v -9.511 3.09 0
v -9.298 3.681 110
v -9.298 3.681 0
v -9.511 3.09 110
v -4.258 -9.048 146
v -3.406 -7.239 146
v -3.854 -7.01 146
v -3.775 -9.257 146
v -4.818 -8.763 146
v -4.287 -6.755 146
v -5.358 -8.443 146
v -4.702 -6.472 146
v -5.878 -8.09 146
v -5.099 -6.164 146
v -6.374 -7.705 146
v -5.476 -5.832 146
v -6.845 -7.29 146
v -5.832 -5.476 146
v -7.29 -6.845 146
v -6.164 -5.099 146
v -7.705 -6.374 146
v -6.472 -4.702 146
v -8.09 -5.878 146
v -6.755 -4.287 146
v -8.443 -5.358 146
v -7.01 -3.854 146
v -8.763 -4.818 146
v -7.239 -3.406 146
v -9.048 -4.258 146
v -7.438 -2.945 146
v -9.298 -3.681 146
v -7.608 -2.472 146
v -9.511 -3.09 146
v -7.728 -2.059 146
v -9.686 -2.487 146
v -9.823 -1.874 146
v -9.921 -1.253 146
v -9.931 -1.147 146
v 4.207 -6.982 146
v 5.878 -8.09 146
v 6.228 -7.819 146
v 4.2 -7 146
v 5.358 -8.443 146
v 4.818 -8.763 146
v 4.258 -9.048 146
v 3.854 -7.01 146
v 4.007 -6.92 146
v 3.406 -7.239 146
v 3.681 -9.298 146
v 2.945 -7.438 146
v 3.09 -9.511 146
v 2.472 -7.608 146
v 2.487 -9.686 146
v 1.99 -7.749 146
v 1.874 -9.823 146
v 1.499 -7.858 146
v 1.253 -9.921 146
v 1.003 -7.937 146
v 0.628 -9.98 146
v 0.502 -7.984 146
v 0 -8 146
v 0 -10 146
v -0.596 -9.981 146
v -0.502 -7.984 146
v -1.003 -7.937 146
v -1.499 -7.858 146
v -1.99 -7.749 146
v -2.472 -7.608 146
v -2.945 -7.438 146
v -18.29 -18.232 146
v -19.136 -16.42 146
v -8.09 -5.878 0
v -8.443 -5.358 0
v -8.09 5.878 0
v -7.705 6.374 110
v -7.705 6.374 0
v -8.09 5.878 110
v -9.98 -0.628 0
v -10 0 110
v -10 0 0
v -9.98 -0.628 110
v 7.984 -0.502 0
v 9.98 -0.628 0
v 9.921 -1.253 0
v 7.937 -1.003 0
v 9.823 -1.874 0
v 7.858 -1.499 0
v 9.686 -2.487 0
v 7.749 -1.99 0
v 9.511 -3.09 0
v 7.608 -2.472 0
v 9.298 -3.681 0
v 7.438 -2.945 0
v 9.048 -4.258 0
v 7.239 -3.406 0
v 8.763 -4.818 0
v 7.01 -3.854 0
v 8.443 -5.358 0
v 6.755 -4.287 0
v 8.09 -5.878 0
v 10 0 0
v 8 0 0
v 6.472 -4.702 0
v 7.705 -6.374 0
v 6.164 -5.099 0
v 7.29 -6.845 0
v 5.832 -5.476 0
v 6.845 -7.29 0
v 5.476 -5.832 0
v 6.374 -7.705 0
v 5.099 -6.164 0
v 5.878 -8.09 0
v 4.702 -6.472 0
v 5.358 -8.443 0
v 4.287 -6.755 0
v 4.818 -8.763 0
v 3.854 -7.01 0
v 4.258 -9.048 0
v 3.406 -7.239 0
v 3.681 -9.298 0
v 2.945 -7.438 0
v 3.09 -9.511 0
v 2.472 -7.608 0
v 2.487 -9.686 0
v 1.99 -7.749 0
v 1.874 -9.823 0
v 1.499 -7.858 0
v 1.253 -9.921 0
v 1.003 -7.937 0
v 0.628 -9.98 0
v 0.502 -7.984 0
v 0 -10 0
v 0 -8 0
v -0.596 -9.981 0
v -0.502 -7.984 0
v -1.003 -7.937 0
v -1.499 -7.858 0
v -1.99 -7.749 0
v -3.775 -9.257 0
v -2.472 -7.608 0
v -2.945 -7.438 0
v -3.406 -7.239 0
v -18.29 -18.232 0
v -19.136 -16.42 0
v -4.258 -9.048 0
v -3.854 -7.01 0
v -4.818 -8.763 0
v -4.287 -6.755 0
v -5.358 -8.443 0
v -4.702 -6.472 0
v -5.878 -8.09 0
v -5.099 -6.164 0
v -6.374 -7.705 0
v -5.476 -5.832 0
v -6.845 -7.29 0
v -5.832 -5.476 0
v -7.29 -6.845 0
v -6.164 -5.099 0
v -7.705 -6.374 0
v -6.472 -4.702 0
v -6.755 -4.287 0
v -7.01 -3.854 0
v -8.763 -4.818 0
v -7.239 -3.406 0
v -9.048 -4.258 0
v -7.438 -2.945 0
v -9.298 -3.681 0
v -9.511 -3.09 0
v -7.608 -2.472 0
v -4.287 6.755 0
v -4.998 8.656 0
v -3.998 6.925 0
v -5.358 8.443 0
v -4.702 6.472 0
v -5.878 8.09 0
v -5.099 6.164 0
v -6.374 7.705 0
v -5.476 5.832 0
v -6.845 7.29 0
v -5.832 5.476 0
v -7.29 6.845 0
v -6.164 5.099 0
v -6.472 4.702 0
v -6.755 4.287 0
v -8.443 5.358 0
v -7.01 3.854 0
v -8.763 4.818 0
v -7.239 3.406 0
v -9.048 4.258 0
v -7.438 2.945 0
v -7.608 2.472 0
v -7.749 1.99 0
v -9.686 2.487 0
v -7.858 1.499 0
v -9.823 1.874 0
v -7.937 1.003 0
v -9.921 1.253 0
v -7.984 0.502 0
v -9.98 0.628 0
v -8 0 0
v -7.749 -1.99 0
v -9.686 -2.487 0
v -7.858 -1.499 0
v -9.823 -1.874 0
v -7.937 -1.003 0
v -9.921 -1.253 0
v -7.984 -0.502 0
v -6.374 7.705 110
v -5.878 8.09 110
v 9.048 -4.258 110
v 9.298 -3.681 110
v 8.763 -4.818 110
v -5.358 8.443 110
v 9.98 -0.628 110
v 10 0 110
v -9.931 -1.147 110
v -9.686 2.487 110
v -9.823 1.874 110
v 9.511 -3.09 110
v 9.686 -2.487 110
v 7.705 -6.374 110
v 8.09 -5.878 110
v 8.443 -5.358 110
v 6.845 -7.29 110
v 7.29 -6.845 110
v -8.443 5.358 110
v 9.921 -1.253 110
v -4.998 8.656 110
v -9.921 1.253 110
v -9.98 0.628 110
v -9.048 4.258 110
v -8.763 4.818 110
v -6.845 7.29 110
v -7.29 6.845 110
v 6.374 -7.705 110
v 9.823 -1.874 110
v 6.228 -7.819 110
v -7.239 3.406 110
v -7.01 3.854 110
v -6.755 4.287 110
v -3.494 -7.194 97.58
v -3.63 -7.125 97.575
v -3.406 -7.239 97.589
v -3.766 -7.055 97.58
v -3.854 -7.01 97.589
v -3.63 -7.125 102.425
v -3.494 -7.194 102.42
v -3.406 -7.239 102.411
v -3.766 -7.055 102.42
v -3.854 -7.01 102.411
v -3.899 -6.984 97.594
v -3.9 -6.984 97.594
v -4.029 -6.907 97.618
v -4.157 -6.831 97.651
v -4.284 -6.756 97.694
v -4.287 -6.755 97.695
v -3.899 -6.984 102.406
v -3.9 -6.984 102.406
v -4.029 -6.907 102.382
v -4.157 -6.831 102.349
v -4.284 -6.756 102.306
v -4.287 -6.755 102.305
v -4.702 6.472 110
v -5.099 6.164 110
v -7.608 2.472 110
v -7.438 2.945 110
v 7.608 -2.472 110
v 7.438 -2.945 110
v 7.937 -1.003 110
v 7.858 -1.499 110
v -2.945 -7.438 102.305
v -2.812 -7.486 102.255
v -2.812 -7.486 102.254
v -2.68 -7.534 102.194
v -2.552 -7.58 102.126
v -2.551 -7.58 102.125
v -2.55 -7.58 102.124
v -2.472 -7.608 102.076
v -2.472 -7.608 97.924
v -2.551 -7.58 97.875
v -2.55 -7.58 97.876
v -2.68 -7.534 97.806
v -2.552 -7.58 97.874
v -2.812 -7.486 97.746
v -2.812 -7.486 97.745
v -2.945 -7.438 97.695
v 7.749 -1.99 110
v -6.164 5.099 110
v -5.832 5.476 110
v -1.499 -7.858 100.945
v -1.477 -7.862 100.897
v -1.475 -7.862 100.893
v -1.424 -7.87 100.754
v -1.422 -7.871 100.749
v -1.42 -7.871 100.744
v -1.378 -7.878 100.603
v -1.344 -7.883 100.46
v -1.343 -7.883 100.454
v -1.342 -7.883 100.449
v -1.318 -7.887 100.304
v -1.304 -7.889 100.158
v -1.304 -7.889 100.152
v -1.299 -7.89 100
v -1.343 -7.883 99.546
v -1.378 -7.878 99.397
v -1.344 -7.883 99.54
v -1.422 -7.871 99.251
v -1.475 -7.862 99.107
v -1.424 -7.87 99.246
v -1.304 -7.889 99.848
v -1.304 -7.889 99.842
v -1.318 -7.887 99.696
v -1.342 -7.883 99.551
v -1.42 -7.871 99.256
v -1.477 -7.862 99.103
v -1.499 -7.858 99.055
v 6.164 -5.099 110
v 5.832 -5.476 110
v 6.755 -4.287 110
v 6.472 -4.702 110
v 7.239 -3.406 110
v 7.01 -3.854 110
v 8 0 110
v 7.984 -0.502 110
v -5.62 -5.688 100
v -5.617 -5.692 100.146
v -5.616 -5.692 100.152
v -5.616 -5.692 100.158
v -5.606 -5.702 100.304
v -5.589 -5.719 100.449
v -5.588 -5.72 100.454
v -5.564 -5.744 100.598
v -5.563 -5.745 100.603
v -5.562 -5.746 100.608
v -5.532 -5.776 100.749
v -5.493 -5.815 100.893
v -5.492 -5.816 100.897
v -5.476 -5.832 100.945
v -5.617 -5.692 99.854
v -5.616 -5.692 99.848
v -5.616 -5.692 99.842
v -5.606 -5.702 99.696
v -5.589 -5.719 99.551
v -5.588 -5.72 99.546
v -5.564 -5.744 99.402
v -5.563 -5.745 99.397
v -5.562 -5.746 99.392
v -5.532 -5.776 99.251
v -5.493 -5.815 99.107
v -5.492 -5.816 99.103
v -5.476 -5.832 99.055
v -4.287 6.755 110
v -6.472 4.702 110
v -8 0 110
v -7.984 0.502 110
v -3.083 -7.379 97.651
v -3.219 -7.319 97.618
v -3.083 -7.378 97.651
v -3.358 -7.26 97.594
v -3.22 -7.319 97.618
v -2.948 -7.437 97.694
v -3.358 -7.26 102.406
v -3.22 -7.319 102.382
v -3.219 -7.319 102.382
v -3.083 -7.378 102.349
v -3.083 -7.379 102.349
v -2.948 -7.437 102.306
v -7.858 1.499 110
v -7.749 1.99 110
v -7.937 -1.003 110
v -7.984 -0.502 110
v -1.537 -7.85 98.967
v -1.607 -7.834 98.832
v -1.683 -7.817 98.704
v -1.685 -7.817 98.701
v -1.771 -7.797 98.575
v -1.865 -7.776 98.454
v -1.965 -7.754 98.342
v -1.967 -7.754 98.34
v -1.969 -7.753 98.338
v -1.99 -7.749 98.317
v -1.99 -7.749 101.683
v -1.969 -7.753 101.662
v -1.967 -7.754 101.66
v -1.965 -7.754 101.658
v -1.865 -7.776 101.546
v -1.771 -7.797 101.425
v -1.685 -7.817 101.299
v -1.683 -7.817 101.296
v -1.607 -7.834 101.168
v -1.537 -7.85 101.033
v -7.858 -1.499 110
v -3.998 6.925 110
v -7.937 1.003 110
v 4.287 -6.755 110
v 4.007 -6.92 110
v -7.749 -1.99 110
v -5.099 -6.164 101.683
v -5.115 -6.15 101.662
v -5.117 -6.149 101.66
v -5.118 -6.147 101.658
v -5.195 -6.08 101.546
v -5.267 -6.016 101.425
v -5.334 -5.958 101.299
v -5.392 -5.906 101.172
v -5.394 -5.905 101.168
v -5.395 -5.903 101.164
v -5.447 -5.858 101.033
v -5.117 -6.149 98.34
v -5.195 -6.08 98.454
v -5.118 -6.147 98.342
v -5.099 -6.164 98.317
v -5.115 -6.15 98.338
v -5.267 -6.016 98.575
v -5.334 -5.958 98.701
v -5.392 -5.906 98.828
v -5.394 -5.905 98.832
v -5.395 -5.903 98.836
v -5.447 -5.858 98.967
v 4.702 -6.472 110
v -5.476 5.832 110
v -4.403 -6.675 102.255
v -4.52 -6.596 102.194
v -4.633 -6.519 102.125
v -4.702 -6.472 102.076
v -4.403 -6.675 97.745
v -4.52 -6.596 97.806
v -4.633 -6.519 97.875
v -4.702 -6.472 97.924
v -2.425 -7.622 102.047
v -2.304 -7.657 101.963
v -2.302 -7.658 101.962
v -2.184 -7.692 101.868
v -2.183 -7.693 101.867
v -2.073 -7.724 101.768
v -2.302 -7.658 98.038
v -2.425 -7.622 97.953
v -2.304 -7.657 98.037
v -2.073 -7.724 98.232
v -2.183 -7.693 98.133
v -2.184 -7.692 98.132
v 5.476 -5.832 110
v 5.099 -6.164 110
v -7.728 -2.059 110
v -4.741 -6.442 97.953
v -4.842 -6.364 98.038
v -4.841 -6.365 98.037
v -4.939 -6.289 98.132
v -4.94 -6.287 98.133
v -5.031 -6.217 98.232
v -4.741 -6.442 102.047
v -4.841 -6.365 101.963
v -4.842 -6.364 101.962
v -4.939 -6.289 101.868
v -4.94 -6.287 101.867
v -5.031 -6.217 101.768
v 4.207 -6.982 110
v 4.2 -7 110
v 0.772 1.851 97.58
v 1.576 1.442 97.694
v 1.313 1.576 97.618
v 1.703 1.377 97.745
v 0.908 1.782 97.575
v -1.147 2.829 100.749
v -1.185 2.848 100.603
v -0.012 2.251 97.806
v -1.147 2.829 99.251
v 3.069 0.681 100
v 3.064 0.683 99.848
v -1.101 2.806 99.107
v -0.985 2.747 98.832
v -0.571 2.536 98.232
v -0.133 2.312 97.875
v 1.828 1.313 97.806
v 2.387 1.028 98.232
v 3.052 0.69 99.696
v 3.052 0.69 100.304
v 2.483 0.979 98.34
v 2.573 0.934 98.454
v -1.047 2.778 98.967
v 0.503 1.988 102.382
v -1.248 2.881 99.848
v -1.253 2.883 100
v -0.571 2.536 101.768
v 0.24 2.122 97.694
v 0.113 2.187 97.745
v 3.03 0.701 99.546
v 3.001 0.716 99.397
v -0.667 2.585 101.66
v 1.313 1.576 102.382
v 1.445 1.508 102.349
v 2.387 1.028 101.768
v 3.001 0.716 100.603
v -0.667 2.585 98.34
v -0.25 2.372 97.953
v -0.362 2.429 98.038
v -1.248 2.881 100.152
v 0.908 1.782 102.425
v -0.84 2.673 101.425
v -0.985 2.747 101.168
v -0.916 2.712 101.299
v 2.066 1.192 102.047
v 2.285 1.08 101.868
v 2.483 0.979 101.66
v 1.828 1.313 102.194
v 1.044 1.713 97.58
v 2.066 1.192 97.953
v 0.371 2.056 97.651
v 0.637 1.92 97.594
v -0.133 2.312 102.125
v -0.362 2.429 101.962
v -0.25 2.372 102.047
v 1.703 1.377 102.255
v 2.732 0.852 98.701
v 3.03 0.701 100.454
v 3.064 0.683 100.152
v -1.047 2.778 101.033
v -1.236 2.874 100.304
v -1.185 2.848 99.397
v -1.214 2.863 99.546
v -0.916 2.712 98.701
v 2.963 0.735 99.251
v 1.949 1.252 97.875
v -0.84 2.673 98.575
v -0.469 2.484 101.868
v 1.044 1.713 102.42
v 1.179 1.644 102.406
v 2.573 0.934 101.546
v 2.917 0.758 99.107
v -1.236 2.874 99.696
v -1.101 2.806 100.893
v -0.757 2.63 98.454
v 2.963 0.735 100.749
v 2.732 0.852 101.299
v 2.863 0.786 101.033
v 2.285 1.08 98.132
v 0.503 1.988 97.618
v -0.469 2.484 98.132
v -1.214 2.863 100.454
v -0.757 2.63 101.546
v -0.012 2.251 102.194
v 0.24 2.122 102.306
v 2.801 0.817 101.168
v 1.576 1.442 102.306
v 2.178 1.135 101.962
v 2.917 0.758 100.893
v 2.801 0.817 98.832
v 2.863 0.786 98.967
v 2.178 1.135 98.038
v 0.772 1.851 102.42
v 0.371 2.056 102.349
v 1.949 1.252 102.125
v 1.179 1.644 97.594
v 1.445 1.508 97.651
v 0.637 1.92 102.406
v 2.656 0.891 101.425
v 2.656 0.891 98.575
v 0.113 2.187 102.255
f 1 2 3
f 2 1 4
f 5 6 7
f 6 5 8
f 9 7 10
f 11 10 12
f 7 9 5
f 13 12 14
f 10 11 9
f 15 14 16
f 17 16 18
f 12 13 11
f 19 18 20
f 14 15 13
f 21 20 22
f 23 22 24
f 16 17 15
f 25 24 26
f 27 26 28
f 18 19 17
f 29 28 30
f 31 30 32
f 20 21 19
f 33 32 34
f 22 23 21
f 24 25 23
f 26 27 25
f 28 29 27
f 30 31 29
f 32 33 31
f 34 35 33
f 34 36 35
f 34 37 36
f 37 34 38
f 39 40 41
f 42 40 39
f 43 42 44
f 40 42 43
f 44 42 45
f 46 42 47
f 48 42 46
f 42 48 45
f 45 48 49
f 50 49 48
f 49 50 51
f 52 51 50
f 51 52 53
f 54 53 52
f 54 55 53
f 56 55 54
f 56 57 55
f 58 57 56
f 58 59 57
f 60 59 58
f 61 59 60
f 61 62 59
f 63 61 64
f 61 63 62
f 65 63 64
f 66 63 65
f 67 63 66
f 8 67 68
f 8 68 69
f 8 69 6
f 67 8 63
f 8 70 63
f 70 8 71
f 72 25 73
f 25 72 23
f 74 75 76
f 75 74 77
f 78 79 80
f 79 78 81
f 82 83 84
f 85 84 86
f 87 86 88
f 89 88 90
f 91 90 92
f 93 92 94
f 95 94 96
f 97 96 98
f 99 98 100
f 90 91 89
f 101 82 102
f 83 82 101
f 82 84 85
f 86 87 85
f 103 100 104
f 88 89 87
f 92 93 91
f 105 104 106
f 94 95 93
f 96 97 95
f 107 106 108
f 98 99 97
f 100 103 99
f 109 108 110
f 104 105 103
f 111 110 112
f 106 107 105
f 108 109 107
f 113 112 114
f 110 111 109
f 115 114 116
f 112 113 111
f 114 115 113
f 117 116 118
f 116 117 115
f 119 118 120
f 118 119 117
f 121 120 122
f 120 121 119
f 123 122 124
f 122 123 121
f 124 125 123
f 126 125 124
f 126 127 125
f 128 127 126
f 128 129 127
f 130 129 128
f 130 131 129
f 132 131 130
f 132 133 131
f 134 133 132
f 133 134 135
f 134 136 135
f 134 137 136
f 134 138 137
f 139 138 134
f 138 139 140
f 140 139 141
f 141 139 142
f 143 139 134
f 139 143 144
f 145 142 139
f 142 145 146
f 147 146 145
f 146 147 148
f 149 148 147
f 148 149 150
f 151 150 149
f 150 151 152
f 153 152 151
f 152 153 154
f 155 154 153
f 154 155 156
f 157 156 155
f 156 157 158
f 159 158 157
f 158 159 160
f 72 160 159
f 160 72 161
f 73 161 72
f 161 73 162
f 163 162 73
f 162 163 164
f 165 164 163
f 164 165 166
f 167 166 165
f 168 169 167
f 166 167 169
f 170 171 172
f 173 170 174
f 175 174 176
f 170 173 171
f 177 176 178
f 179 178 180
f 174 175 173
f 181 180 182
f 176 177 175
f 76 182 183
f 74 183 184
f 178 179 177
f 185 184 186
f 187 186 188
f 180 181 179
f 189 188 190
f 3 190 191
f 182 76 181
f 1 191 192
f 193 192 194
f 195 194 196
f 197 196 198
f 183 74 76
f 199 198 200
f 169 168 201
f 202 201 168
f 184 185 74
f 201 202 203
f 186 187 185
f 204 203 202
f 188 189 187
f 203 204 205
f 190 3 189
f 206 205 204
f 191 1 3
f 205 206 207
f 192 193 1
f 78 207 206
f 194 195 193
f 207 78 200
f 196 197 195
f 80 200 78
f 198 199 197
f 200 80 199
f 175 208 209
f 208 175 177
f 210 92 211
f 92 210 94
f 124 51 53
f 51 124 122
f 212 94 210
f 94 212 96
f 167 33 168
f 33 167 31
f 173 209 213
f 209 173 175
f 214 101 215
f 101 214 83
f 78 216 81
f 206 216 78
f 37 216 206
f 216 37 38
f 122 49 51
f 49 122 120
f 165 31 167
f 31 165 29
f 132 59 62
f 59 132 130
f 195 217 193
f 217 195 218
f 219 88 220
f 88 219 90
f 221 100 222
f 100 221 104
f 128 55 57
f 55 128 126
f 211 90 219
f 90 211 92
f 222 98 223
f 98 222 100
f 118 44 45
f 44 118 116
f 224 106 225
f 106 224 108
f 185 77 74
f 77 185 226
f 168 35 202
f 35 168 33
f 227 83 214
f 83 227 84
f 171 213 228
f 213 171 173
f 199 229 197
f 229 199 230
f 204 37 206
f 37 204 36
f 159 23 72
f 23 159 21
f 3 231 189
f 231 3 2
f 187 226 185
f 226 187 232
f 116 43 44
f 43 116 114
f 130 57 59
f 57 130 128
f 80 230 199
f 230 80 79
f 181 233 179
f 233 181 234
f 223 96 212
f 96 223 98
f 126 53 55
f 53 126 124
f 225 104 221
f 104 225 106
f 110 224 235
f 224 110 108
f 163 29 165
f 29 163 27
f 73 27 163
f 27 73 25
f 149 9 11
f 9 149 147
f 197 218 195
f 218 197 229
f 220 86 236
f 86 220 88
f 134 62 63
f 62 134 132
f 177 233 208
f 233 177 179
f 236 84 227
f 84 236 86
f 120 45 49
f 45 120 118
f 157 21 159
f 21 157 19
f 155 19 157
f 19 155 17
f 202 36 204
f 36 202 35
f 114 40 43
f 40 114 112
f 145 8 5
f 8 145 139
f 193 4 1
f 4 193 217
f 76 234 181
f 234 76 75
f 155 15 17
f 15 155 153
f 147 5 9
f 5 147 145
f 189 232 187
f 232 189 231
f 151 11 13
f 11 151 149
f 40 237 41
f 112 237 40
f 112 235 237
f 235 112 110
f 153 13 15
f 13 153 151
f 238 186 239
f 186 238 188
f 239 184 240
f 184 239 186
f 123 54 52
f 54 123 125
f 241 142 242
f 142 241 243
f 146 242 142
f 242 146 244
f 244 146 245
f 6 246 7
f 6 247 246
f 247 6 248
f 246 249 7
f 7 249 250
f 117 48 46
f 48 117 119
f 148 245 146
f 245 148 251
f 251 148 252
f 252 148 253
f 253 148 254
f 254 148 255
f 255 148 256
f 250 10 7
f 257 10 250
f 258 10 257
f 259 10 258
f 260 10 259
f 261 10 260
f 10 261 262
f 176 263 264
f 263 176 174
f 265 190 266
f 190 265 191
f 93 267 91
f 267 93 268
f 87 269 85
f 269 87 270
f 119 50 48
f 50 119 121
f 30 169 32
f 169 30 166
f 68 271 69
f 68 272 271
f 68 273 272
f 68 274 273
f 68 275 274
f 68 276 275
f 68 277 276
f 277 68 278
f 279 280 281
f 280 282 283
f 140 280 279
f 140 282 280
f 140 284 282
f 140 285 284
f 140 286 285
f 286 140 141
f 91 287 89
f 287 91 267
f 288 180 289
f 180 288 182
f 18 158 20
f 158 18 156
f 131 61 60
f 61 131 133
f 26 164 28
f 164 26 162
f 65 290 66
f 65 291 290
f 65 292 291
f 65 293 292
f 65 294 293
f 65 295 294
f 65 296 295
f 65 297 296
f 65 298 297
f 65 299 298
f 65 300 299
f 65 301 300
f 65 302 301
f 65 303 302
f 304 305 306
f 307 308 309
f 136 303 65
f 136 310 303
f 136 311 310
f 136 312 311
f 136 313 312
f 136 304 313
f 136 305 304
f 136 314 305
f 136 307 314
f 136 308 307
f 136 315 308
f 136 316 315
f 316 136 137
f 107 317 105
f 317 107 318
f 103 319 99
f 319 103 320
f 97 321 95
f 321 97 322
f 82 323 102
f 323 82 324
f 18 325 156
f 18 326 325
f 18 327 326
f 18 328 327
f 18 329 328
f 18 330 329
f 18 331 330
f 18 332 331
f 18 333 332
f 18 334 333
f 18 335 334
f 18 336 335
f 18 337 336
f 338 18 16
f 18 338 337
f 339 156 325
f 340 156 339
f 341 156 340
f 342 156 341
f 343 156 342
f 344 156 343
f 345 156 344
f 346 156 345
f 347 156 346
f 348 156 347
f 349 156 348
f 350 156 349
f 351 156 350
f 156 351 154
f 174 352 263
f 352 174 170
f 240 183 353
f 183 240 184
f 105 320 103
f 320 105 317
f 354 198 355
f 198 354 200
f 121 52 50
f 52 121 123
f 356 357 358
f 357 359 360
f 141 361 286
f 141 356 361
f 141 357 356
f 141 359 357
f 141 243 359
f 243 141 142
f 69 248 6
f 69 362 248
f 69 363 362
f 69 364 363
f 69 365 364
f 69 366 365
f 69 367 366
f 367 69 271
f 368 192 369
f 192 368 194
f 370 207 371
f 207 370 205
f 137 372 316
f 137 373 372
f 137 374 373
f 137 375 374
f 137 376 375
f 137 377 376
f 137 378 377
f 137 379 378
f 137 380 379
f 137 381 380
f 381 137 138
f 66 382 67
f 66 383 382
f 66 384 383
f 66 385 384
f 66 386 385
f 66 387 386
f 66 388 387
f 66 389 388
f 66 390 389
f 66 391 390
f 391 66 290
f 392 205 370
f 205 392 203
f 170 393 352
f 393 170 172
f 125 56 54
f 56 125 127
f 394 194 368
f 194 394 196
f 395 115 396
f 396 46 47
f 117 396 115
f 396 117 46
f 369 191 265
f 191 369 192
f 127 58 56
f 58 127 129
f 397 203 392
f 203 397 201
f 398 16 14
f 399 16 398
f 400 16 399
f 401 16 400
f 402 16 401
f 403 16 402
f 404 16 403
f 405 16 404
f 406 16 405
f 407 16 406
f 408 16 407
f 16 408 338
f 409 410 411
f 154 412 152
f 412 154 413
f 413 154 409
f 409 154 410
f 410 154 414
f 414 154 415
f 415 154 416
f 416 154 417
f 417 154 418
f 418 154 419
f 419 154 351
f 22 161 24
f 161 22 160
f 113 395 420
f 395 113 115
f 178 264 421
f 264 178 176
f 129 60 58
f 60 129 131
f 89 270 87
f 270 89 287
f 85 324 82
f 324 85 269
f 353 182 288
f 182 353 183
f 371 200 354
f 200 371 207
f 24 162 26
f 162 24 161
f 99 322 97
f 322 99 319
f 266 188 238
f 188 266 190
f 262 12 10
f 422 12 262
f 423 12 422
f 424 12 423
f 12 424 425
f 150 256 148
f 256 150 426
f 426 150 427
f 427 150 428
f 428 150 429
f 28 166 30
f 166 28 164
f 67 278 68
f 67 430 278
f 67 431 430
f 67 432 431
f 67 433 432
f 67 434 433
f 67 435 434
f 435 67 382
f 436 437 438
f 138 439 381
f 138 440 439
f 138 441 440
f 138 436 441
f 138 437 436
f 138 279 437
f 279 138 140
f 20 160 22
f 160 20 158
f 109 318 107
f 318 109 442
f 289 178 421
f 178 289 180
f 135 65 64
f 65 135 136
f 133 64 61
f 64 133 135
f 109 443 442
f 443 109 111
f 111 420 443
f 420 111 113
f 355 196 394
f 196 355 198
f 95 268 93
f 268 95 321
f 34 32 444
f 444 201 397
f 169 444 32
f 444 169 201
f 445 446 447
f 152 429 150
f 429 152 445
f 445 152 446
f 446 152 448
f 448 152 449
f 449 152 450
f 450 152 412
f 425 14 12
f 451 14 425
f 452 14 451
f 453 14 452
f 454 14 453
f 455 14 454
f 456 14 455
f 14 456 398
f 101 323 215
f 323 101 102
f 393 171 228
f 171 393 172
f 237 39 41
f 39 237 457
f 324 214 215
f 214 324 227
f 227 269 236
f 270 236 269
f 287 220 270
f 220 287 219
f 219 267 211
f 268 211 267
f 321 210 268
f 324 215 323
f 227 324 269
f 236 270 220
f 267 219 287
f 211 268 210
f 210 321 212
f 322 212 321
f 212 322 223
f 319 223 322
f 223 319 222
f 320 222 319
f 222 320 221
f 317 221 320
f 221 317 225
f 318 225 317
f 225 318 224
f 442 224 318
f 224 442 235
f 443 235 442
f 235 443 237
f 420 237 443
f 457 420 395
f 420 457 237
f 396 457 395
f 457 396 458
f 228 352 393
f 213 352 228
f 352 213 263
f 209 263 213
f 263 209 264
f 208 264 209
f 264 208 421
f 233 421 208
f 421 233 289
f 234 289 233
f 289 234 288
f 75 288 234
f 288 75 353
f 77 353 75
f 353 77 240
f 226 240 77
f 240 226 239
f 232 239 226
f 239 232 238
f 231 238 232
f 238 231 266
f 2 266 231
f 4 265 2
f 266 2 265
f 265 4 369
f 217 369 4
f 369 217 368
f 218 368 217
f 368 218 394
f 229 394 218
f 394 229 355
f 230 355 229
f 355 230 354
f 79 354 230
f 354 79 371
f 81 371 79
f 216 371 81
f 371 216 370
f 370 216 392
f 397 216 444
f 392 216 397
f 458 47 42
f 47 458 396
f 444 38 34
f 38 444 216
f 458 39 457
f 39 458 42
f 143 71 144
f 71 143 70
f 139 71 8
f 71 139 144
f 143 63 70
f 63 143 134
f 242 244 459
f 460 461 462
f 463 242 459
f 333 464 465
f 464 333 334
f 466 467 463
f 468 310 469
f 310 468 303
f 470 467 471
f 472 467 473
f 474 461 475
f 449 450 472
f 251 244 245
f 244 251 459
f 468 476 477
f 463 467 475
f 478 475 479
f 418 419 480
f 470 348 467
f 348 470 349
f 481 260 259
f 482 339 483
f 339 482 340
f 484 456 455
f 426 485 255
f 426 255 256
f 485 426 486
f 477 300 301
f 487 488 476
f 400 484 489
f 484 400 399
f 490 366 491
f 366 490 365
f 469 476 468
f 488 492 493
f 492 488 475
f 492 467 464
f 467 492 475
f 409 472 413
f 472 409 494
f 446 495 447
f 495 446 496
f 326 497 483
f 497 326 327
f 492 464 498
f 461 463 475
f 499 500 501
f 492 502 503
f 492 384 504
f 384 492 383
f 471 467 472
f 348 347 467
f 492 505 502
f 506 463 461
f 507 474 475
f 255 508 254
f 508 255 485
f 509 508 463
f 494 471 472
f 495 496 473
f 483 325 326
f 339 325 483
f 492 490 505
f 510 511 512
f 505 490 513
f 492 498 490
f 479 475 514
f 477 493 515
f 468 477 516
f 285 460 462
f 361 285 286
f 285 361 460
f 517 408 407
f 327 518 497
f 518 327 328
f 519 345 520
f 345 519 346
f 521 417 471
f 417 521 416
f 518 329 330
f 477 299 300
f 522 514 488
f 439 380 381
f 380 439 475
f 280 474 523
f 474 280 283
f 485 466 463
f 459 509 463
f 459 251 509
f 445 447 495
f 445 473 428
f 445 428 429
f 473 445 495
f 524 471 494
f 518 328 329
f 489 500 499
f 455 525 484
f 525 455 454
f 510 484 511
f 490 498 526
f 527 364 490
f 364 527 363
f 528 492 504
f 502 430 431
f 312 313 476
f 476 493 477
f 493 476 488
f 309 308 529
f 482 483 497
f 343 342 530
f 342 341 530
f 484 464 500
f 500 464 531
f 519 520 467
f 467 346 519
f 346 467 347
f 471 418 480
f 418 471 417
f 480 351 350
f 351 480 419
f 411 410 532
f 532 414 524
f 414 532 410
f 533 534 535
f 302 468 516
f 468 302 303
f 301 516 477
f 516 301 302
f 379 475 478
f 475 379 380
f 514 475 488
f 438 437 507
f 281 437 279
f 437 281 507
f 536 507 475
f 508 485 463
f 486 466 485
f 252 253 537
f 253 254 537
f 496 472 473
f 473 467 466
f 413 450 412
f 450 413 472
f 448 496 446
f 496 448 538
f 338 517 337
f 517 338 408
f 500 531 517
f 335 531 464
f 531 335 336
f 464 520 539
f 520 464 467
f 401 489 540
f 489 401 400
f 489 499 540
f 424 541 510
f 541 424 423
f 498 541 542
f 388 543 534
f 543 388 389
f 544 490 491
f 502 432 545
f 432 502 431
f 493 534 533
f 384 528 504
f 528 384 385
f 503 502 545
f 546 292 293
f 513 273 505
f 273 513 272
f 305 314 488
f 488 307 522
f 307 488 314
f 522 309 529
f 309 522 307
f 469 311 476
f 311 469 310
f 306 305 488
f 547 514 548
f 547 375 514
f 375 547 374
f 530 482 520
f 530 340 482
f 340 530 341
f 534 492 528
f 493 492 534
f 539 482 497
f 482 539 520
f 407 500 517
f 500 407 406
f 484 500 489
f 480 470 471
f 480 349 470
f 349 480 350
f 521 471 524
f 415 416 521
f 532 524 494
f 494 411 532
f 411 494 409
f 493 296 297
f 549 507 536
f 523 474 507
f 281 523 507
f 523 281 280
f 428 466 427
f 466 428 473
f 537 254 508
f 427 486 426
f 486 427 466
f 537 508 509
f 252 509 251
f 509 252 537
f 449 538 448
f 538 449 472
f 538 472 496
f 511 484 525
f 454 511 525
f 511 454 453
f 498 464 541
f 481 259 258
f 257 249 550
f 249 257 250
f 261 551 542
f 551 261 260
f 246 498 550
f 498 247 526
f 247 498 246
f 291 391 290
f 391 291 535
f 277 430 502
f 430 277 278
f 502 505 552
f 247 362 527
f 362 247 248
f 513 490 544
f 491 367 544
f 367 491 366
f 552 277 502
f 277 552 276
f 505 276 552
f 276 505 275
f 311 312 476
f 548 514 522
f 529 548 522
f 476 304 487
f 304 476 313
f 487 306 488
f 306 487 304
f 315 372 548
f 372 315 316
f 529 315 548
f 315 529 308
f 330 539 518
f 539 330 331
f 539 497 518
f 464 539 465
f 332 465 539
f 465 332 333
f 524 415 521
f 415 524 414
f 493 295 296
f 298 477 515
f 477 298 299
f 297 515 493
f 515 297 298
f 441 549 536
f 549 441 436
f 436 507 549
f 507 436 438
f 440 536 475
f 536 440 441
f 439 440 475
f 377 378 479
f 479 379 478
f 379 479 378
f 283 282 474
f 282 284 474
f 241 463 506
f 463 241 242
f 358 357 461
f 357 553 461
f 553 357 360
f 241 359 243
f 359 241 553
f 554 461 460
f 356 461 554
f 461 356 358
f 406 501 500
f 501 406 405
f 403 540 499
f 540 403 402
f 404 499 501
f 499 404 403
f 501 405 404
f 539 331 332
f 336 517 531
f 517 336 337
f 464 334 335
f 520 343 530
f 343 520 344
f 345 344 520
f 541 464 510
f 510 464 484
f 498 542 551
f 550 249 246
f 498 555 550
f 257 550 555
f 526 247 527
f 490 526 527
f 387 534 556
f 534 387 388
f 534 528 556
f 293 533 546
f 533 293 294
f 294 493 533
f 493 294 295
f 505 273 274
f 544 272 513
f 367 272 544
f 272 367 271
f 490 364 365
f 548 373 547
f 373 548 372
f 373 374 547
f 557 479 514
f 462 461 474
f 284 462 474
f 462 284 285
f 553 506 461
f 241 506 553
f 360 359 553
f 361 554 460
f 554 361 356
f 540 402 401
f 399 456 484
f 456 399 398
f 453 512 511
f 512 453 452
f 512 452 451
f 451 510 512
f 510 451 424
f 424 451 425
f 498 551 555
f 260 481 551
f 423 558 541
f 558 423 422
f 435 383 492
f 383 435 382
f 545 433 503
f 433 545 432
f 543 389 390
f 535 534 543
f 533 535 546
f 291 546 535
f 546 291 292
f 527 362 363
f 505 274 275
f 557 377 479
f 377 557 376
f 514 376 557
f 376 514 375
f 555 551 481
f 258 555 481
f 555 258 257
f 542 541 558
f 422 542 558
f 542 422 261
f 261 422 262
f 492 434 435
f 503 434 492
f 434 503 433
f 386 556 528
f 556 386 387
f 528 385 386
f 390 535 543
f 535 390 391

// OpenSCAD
union(){
    difference() {
        cylinder(h = 146, d = 20, $fn = 100);
        cylinder(h = 146, d = 16, $fn = 100);

        cube([10, 10, 120]);
        rotate([0, 0, 30]) {
            cube([10, 10, 120]);
        }

        translate([9.2, -9.05, 110]){
            rotate([0, 0, 67.5]) {
                cube([17.4, 17.4, 46]);
            }
        }

        translate([4.2, -7, 110]){
            rotate([0, 0, 67.5]) {
                cube([17.4, 17.4, 46]);
            }
        }
    }

    // Wall
    translate([-9.65, -13.1, 73]) {
        rotate([0, 0, 25]) {
            cube([20, 2, 146], center = true);
        }
    }

    // Nipple
    translate([0, 0, 100]) {
        rotate([0, 90, 63]) {
            translate([0, 0, -8]) {
            cylinder(h = 10, d = 4.85, $fn = 100);
            }
        }
    }
}
